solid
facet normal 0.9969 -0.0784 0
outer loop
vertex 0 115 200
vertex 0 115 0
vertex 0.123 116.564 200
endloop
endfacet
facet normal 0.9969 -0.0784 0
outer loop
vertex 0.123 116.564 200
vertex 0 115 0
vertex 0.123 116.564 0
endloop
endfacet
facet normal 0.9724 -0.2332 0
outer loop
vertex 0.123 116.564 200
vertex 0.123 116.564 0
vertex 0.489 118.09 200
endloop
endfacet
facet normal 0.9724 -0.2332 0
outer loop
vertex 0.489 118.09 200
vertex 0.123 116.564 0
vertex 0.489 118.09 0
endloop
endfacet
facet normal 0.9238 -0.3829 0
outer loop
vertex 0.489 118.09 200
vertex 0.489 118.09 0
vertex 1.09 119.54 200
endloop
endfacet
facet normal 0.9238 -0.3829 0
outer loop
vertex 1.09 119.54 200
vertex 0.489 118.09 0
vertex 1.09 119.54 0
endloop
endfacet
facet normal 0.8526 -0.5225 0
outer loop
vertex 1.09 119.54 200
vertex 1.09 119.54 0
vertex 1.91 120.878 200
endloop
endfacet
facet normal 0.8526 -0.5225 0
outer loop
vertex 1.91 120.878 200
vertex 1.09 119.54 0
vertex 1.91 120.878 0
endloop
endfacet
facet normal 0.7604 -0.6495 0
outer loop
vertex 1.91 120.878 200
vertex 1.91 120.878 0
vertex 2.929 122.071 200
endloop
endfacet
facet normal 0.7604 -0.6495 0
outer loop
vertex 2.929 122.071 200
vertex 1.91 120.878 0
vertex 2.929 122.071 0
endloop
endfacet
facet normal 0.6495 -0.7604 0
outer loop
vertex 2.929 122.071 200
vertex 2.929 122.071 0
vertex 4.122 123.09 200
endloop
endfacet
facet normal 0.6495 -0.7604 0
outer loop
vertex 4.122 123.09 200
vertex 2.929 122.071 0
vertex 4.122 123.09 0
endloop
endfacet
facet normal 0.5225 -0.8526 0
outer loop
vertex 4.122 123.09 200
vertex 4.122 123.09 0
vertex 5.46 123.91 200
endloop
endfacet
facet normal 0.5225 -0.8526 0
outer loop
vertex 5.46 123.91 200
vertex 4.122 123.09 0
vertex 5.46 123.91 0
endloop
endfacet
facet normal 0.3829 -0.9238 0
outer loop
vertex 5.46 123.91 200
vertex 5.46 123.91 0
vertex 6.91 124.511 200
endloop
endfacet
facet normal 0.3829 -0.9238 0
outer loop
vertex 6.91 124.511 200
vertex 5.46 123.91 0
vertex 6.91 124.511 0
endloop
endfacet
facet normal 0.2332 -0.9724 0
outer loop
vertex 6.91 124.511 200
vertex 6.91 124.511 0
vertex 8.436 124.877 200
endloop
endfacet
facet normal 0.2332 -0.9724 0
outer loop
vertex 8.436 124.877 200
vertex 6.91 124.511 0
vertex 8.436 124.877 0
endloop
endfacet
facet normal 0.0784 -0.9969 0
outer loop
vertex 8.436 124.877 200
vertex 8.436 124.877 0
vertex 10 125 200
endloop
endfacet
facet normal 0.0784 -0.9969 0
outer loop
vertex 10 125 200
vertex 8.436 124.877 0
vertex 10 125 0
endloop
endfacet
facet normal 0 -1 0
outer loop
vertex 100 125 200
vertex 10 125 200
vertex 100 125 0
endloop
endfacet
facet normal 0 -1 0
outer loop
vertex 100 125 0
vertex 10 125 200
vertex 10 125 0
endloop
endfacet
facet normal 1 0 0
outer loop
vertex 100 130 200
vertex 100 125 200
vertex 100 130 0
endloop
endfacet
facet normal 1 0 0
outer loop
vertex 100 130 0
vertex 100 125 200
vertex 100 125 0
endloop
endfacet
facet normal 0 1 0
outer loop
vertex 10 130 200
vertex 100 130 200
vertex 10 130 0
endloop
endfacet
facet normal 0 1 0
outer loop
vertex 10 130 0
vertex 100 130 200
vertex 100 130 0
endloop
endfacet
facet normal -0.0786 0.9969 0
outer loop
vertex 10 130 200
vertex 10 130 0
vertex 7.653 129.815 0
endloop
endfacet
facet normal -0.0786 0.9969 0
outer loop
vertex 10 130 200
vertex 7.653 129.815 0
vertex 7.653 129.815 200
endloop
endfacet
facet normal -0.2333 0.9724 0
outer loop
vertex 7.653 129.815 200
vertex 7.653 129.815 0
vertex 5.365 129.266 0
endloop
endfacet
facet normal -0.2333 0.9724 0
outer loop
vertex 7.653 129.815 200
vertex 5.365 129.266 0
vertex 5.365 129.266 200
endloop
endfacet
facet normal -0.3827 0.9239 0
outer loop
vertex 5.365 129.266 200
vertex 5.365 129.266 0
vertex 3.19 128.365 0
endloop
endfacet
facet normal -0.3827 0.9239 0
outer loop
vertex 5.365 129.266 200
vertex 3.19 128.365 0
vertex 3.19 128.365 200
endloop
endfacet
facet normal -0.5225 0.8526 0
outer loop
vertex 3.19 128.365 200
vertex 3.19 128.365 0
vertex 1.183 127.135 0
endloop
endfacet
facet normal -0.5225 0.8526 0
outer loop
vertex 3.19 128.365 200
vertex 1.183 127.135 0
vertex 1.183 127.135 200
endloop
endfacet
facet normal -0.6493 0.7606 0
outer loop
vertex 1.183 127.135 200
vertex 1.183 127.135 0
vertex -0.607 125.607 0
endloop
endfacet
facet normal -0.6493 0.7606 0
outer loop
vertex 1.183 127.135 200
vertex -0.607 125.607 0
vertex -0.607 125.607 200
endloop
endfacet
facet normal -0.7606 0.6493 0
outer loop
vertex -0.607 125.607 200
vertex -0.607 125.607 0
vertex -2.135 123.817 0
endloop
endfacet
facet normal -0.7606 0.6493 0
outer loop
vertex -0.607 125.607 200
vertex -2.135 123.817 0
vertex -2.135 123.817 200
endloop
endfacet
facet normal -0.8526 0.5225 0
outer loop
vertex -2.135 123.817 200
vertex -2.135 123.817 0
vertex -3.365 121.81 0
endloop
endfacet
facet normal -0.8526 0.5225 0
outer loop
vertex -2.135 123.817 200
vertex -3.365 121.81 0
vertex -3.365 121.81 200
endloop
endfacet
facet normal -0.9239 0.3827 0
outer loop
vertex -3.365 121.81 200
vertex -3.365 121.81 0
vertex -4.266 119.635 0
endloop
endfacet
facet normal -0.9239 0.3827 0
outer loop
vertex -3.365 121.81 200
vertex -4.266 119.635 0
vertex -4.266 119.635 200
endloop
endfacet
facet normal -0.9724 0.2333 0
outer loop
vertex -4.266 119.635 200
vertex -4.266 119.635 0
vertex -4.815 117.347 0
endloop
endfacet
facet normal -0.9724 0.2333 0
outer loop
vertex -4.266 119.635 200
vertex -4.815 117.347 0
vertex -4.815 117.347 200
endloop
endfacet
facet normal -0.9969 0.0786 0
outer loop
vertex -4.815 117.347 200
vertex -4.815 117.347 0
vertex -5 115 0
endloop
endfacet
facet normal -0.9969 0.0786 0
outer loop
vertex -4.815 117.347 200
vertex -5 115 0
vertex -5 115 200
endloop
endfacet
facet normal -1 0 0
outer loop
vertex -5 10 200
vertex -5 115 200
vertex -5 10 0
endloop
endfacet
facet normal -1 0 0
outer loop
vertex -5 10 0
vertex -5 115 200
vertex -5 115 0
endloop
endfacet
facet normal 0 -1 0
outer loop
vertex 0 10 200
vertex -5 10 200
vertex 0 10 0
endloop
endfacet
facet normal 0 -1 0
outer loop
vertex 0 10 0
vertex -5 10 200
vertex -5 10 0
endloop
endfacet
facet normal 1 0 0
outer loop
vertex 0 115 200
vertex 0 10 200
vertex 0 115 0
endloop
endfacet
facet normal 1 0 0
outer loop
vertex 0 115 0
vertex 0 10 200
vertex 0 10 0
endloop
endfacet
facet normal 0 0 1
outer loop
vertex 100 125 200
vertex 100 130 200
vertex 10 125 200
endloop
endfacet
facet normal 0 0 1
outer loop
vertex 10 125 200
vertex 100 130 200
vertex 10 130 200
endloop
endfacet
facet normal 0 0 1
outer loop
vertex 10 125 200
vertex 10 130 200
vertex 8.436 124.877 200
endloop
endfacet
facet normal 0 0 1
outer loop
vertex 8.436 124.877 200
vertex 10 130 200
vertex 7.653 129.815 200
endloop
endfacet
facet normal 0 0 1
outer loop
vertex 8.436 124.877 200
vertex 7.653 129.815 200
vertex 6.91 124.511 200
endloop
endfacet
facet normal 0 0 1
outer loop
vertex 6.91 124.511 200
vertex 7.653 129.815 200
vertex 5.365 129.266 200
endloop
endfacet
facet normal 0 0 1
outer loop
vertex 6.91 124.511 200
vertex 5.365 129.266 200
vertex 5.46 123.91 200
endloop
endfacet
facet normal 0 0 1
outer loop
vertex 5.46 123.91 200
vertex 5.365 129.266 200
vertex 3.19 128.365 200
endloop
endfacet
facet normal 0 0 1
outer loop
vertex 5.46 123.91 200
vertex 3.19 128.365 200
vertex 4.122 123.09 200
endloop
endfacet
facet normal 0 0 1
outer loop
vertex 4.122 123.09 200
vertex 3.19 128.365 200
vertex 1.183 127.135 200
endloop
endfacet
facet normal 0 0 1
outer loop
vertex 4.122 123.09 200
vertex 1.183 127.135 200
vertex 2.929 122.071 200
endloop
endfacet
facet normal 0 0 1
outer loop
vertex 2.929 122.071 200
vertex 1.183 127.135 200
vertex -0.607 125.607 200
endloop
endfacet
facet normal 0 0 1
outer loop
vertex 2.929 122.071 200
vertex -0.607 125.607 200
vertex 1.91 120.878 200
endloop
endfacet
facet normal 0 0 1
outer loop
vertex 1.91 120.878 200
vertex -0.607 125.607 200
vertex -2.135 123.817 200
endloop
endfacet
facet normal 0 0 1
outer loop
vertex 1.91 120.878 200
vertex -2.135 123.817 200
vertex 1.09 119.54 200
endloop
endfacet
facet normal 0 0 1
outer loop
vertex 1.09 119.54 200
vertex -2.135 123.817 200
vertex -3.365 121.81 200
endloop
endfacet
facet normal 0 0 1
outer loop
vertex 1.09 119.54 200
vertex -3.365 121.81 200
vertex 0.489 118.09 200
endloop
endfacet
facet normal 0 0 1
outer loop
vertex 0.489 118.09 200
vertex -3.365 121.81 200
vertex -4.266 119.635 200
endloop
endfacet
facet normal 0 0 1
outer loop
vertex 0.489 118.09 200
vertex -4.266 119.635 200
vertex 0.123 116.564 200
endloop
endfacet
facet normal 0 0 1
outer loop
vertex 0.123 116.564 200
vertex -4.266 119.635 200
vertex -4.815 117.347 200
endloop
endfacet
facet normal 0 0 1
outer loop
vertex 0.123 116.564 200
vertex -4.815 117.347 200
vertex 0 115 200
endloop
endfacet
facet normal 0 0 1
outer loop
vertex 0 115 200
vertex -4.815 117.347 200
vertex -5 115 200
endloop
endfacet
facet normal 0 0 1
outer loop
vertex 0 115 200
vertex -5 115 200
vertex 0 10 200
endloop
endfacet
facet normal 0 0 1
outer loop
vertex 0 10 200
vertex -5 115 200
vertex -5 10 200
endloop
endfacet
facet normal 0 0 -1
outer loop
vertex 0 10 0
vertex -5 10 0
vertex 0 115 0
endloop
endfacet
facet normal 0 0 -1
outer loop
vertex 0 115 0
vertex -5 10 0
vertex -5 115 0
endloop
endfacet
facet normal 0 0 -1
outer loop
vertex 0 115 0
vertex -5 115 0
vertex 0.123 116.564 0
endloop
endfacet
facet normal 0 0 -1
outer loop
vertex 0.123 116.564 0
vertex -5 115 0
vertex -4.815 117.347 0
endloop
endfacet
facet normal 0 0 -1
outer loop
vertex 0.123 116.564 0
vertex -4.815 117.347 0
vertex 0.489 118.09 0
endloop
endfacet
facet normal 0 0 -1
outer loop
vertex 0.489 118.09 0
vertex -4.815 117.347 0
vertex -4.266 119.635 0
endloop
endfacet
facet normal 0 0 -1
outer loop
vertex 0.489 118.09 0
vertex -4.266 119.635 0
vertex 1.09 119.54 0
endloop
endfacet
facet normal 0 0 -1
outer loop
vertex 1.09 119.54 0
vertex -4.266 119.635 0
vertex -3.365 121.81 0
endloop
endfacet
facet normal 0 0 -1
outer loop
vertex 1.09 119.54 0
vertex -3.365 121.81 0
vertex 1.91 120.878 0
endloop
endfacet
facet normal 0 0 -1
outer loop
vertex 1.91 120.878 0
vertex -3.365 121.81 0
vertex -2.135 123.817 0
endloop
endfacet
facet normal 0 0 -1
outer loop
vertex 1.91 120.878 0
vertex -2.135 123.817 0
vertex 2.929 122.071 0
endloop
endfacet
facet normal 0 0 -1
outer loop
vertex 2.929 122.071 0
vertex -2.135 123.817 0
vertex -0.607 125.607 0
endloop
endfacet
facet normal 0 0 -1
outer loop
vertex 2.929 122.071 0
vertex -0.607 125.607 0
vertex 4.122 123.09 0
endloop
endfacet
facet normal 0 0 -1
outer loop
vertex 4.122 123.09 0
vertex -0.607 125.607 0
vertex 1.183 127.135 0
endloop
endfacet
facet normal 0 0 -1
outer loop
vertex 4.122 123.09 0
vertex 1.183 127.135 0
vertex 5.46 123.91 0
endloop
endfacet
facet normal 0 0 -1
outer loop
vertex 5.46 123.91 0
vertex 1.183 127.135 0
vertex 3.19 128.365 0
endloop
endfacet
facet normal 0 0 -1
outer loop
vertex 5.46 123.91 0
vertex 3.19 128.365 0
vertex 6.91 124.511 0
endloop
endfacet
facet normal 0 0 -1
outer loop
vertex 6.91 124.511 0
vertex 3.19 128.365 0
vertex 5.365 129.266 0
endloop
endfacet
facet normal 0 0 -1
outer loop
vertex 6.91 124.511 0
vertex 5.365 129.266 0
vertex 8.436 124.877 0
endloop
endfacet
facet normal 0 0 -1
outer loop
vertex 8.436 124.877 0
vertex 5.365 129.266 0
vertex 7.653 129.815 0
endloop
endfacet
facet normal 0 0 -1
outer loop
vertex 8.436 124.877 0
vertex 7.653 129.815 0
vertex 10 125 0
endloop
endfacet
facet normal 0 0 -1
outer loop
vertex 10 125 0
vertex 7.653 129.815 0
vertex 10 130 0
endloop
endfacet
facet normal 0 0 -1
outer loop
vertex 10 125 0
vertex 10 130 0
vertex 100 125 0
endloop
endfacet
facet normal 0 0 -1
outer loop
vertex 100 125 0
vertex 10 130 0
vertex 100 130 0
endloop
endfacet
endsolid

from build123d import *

# Parameters (mm, degrees)
EXTRUDE_1_DEPTH = 200


with BuildPart() as part:
    # 草图2 → 凸台-拉伸1 (new body)
    with BuildSketch(Plane.XY):
        with BuildLine():
            Line((0, 10), (0, 115))
            ThreePointArc((0, 115), (2.928932188, 122.071067812), (10, 125))
            Line((10, 125), (90, 125))
            Line((90, 125), (100, 125))
            Line((100, 125), (100, 130))
            Line((100, 130), (10, 130))
            ThreePointArc((10, 130), (-0.606601718, 125.606601718), (-5, 115))
            Line((-5, 115), (-5, 20))
            Line((-5, 20), (-5, 10))
            Line((-5, 10), (0, 10))
        make_face()
    extrude(amount=EXTRUDE_1_DEPTH)


solid = part.part
